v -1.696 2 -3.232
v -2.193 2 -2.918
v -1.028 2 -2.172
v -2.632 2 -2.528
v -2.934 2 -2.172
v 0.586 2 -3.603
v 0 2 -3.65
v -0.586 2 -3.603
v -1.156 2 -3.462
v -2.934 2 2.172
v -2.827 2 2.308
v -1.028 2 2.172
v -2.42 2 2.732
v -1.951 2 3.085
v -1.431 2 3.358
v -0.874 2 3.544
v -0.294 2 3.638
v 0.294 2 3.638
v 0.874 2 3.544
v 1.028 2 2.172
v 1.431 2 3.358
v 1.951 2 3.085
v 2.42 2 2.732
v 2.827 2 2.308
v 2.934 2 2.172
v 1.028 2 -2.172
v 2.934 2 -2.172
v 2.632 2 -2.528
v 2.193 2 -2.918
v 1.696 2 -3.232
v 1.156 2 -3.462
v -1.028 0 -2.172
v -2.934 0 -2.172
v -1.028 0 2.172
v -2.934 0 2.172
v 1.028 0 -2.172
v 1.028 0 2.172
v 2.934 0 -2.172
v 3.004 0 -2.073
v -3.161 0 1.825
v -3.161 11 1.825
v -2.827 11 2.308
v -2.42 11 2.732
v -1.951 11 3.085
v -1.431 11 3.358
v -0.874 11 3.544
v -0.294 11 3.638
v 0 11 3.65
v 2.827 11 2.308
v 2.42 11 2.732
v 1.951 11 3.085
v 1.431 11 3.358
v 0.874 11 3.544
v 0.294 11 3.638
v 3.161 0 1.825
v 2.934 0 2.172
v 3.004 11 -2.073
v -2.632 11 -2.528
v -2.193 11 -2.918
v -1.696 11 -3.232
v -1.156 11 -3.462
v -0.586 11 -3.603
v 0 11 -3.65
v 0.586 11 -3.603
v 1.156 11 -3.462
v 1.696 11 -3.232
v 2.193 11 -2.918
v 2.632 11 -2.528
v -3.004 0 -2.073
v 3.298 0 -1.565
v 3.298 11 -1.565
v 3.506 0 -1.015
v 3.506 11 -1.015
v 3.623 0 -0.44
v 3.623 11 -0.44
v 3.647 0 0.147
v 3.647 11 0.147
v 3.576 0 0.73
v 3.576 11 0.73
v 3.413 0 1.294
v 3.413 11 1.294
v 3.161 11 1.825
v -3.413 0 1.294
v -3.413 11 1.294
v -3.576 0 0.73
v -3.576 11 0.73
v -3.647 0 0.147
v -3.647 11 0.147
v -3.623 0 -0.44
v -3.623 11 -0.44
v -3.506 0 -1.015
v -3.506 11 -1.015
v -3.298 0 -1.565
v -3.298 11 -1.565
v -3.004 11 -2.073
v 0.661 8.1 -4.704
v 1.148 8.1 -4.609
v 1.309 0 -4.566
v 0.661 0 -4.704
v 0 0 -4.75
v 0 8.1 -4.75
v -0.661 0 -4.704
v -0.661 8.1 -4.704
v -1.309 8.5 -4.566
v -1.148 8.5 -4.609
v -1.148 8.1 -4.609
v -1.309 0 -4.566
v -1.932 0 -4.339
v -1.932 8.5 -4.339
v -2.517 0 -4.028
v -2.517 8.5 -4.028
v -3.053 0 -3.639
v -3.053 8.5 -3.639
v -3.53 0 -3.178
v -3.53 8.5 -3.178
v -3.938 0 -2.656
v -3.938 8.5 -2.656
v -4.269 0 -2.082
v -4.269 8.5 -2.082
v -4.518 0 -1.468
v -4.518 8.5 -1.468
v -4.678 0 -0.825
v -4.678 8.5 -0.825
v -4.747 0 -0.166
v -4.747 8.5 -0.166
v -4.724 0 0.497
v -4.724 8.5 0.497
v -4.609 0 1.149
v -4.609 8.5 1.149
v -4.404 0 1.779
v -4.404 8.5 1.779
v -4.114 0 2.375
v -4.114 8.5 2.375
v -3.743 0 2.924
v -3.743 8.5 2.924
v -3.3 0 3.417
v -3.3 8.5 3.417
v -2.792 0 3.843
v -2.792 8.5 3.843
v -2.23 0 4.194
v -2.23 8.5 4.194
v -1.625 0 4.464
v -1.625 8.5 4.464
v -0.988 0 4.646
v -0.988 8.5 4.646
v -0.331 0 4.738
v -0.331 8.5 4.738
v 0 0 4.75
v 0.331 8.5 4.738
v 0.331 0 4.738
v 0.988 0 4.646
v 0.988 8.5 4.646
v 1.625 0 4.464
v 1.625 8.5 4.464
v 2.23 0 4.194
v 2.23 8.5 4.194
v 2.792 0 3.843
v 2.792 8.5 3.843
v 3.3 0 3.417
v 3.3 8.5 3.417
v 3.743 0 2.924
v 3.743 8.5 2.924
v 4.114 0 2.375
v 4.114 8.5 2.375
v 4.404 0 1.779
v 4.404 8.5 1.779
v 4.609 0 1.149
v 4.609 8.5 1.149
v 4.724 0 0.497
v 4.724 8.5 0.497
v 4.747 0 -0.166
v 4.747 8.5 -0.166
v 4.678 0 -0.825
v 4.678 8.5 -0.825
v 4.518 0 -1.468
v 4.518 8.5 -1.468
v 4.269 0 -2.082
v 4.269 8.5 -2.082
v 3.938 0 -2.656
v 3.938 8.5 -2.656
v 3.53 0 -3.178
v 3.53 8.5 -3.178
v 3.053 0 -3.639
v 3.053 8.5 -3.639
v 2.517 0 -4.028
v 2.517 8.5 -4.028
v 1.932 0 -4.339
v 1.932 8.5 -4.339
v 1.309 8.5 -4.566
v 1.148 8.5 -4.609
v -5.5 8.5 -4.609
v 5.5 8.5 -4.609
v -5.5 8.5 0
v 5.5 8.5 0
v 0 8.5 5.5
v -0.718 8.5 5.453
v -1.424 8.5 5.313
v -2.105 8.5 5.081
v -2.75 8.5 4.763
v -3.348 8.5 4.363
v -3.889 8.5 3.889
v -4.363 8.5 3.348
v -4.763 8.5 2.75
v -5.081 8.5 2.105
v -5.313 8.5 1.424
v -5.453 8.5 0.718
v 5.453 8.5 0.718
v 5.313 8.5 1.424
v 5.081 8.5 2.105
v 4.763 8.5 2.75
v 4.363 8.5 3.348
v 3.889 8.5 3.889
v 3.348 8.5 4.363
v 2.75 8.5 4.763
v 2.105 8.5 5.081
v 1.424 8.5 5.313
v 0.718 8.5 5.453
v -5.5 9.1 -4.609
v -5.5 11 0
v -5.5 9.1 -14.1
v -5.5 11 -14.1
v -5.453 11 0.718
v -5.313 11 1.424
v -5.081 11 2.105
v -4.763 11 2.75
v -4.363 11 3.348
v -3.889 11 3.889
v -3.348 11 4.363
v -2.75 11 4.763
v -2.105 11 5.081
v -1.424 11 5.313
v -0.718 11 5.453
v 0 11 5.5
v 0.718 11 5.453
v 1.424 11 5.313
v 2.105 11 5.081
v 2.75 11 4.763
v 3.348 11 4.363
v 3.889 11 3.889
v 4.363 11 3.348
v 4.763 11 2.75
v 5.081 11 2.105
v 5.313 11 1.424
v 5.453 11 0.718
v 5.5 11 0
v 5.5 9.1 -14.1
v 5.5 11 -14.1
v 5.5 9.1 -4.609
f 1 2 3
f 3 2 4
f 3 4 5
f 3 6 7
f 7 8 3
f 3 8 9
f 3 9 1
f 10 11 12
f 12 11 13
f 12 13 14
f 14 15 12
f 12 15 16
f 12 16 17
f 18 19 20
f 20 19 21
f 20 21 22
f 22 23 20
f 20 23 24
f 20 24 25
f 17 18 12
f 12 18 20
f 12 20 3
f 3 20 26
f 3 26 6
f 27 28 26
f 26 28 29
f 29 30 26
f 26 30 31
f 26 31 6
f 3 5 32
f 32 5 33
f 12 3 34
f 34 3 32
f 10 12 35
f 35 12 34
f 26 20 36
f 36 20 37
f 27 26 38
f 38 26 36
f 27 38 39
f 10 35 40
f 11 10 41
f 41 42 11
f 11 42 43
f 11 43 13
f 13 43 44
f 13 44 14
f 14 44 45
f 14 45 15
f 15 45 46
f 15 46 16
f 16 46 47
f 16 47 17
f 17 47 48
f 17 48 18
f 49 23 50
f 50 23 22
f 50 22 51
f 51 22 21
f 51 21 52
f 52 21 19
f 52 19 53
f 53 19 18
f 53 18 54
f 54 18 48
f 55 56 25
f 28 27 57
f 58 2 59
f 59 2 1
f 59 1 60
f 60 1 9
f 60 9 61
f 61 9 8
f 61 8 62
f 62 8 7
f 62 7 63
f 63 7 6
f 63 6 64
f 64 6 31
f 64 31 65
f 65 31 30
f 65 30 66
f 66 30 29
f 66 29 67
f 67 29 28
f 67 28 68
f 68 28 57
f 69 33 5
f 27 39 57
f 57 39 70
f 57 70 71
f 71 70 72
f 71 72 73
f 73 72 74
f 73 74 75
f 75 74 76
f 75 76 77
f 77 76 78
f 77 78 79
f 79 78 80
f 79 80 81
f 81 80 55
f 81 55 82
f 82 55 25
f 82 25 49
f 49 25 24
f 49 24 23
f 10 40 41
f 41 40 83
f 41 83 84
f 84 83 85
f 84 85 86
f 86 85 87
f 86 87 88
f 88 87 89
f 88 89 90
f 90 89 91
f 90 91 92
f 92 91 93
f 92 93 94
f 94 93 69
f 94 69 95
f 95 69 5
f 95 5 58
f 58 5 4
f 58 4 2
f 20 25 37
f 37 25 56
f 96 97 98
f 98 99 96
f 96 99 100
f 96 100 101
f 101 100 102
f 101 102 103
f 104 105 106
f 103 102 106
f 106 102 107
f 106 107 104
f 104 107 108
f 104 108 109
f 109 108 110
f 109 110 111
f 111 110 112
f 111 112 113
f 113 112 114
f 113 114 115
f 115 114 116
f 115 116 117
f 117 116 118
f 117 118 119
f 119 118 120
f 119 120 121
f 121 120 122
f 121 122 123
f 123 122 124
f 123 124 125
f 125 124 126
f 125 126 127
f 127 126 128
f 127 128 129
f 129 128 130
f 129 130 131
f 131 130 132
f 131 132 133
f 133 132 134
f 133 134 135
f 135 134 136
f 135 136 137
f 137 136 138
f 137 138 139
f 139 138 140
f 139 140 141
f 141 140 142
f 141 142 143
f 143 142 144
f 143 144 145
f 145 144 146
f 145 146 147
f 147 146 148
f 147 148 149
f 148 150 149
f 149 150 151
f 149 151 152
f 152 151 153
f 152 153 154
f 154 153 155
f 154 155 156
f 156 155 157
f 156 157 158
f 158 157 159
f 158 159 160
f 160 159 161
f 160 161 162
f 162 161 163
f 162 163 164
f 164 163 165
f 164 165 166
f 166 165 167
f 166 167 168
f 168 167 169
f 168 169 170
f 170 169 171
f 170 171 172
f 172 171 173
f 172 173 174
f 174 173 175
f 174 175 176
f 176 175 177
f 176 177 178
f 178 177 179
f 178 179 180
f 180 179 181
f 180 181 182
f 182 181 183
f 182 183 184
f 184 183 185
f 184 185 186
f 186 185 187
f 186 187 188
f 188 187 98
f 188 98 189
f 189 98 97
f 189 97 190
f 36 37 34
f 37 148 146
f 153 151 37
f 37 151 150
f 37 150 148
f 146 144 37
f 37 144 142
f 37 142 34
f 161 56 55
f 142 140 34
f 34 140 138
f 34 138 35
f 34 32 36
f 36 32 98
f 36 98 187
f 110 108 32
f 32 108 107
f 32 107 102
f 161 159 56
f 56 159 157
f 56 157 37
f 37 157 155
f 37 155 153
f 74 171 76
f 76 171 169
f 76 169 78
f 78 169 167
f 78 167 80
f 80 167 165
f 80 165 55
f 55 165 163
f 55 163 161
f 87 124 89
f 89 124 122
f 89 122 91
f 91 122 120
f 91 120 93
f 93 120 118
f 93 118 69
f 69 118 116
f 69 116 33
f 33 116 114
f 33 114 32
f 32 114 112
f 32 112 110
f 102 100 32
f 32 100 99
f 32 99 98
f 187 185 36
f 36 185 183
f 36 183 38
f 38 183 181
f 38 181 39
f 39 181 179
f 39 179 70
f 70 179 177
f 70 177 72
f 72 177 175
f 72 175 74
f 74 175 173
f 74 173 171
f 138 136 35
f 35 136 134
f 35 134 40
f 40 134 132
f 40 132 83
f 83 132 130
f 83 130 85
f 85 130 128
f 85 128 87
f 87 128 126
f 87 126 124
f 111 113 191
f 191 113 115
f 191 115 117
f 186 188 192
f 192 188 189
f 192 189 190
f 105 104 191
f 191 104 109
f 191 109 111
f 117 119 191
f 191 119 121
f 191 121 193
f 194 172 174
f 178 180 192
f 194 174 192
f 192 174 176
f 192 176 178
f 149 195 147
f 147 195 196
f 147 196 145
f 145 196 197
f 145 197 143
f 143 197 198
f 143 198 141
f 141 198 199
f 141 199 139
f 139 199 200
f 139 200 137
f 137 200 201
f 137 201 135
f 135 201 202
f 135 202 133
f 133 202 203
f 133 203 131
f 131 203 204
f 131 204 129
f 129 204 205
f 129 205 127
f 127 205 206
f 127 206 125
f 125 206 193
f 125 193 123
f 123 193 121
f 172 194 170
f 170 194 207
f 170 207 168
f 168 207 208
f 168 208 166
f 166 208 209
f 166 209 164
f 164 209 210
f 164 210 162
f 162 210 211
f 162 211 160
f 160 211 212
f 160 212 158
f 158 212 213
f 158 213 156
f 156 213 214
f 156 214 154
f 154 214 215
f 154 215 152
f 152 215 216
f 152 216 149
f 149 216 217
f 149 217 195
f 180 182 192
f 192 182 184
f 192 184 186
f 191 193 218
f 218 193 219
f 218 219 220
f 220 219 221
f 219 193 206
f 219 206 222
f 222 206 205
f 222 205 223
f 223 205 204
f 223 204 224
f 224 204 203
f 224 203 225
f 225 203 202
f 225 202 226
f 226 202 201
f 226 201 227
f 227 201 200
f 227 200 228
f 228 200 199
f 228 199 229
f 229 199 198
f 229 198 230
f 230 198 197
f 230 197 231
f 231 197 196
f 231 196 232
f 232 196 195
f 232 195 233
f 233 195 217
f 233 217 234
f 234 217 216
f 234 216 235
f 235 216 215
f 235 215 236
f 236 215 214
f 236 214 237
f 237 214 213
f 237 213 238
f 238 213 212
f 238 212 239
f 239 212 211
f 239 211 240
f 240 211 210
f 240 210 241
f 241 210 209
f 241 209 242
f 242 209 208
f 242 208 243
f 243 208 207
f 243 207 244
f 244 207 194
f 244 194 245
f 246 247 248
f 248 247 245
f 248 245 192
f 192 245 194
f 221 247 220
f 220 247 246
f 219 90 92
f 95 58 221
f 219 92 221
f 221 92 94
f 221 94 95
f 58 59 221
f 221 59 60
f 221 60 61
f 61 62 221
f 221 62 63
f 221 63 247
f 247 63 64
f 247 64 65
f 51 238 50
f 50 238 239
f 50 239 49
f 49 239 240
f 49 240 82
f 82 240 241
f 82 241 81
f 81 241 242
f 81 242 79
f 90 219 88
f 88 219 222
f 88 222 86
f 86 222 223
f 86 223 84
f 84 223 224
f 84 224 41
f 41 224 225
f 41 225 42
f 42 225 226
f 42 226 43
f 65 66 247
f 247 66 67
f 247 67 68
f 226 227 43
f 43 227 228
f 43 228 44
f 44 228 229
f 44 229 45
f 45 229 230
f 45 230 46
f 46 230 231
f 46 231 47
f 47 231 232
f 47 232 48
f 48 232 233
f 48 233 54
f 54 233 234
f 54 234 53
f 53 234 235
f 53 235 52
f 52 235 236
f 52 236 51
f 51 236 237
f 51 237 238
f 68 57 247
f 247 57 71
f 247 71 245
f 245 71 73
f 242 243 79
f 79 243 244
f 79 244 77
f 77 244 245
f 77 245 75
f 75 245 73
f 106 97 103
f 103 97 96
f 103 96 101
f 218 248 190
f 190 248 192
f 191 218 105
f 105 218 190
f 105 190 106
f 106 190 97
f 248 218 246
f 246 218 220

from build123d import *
from build123d.topology import SkipClean

# Parameters (mm, degrees)
SKETCH1_R           = 4.75
BOSS_EXTRUDE1_DEPTH = 2
SKETCH2_R           = 4.75
SKETCH2_R_2         = 3.65
BOSS_EXTRUDE2_DEPTH = 6.5
SKETCH3_R           = 3.65
BOSS_EXTRUDE3_DEPTH = 2.5
CUT_EXTRUDE1_START  = -1.9
SKETCH5_W           = 11
SKETCH5_H           = 9.490844779
CUT_EXTRUDE1_DEPTH  = 1


with BuildPart() as part:
    # Sketch1 → Boss-Extrude1 (new body)
    with BuildSketch(Plane(origin=(0, 0, 0), x_dir=(1, 0, 0), z_dir=(0, 1, 0))):
        Circle(SKETCH1_R)
        with BuildLine():
            Line((-1.028169014, 2.171577767), (-1.028169014, -2.171577767))
            Line((-1.028169014, -2.171577767), (-2.9337263, -2.171577767))
            ThreePointArc((-2.9337263, -2.171577767), (-3.65, 0), (-2.9337263, 2.171577767))
            Line((-2.9337263, 2.171577767), (-1.028169014, 2.171577767))
        make_face(mode=Mode.SUBTRACT)
        with BuildLine():
            Line((1.028169014, 2.171577767), (2.9337263, 2.171577767))
            ThreePointArc((2.9337263, 2.171577767), (3.65, 0), (2.9337263, -2.171577767))
            Line((2.9337263, -2.171577767), (1.028169014, -2.171577767))
            Line((1.028169014, -2.171577767), (1.028169014, 2.171577767))
        make_face(mode=Mode.SUBTRACT)
    extrude(amount=BOSS_EXTRUDE1_DEPTH)

    # Sketch2 → Boss-Extrude2 (add)
    with SkipClean():  # the faces are left unmerged after this step: merging them gives an invalid solid
        with BuildSketch(Plane(origin=(0, 2, 0), x_dir=(1, 0, 0), z_dir=(0, 1, 0))):
            Circle(SKETCH2_R)
            Circle(SKETCH2_R_2, mode=Mode.SUBTRACT)
        extrude(amount=BOSS_EXTRUDE2_DEPTH)

    # Sketch3 → Boss-Extrude3 (add)
    with SkipClean():  # the faces are left unmerged after this step: merging them gives an invalid solid
        with BuildSketch(Plane(origin=(0, 8.5, 0), x_dir=(1, 0, 0), z_dir=(0, 1, 0))):
            with BuildLine():
                ThreePointArc((-5.5, 0), (0, -5.5), (5.5, 0))
                Line((5.5, 0), (5.5, 14.1))
                Line((5.5, 14.1), (-5.5, 14.1))
                Line((-5.5, 14.1), (-5.5, 0))
            make_face()
            Circle(SKETCH3_R, mode=Mode.SUBTRACT)
        extrude(amount=BOSS_EXTRUDE3_DEPTH)

    # Sketch5 → Cut-Extrude1 (cut)
    with SkipClean():  # the faces are left unmerged after this step: merging them gives an invalid solid
        with BuildSketch(Plane(origin=(0, 11, 0), x_dir=(1, 0, 0), z_dir=(0, 1, 0)).offset(CUT_EXTRUDE1_START)):
            with Locations((0, 9.354577611)):
                Rectangle(SKETCH5_W, SKETCH5_H)
        extrude(amount=-CUT_EXTRUDE1_DEPTH, mode=Mode.SUBTRACT)


solid = part.part
